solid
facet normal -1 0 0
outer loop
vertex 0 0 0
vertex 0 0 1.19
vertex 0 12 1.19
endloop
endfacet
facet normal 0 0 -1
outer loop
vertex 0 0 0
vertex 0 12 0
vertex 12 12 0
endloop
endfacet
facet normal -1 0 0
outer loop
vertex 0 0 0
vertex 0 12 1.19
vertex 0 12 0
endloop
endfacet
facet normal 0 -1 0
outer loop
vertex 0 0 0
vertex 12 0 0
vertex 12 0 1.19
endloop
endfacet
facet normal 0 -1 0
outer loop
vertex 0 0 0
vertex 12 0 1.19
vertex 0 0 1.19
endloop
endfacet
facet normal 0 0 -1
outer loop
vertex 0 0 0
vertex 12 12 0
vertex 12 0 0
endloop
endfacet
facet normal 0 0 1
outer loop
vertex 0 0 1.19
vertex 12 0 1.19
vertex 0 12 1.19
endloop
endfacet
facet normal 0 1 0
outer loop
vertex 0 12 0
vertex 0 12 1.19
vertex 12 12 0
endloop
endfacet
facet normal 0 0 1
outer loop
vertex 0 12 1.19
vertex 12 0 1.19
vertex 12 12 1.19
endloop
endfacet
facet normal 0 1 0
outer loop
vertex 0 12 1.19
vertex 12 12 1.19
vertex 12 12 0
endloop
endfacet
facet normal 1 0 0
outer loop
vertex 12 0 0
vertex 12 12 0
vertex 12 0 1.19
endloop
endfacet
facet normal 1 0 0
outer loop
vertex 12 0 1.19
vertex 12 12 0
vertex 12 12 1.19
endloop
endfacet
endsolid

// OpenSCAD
/* Warning, this is a very basic generator with a lot of approximation 
input data : [TFBGA, LUX, 12x12x1.19mm, 144, , A, C04-00511A]
generated by com.zoubworld.electronics.cad.model3d.Basic
Date : Sun Feb 15 10:50:48 CET 2026
*/

//body
color("black")
translate([0,0,0])
cube([12.0,12.0,1.19], center=false);
